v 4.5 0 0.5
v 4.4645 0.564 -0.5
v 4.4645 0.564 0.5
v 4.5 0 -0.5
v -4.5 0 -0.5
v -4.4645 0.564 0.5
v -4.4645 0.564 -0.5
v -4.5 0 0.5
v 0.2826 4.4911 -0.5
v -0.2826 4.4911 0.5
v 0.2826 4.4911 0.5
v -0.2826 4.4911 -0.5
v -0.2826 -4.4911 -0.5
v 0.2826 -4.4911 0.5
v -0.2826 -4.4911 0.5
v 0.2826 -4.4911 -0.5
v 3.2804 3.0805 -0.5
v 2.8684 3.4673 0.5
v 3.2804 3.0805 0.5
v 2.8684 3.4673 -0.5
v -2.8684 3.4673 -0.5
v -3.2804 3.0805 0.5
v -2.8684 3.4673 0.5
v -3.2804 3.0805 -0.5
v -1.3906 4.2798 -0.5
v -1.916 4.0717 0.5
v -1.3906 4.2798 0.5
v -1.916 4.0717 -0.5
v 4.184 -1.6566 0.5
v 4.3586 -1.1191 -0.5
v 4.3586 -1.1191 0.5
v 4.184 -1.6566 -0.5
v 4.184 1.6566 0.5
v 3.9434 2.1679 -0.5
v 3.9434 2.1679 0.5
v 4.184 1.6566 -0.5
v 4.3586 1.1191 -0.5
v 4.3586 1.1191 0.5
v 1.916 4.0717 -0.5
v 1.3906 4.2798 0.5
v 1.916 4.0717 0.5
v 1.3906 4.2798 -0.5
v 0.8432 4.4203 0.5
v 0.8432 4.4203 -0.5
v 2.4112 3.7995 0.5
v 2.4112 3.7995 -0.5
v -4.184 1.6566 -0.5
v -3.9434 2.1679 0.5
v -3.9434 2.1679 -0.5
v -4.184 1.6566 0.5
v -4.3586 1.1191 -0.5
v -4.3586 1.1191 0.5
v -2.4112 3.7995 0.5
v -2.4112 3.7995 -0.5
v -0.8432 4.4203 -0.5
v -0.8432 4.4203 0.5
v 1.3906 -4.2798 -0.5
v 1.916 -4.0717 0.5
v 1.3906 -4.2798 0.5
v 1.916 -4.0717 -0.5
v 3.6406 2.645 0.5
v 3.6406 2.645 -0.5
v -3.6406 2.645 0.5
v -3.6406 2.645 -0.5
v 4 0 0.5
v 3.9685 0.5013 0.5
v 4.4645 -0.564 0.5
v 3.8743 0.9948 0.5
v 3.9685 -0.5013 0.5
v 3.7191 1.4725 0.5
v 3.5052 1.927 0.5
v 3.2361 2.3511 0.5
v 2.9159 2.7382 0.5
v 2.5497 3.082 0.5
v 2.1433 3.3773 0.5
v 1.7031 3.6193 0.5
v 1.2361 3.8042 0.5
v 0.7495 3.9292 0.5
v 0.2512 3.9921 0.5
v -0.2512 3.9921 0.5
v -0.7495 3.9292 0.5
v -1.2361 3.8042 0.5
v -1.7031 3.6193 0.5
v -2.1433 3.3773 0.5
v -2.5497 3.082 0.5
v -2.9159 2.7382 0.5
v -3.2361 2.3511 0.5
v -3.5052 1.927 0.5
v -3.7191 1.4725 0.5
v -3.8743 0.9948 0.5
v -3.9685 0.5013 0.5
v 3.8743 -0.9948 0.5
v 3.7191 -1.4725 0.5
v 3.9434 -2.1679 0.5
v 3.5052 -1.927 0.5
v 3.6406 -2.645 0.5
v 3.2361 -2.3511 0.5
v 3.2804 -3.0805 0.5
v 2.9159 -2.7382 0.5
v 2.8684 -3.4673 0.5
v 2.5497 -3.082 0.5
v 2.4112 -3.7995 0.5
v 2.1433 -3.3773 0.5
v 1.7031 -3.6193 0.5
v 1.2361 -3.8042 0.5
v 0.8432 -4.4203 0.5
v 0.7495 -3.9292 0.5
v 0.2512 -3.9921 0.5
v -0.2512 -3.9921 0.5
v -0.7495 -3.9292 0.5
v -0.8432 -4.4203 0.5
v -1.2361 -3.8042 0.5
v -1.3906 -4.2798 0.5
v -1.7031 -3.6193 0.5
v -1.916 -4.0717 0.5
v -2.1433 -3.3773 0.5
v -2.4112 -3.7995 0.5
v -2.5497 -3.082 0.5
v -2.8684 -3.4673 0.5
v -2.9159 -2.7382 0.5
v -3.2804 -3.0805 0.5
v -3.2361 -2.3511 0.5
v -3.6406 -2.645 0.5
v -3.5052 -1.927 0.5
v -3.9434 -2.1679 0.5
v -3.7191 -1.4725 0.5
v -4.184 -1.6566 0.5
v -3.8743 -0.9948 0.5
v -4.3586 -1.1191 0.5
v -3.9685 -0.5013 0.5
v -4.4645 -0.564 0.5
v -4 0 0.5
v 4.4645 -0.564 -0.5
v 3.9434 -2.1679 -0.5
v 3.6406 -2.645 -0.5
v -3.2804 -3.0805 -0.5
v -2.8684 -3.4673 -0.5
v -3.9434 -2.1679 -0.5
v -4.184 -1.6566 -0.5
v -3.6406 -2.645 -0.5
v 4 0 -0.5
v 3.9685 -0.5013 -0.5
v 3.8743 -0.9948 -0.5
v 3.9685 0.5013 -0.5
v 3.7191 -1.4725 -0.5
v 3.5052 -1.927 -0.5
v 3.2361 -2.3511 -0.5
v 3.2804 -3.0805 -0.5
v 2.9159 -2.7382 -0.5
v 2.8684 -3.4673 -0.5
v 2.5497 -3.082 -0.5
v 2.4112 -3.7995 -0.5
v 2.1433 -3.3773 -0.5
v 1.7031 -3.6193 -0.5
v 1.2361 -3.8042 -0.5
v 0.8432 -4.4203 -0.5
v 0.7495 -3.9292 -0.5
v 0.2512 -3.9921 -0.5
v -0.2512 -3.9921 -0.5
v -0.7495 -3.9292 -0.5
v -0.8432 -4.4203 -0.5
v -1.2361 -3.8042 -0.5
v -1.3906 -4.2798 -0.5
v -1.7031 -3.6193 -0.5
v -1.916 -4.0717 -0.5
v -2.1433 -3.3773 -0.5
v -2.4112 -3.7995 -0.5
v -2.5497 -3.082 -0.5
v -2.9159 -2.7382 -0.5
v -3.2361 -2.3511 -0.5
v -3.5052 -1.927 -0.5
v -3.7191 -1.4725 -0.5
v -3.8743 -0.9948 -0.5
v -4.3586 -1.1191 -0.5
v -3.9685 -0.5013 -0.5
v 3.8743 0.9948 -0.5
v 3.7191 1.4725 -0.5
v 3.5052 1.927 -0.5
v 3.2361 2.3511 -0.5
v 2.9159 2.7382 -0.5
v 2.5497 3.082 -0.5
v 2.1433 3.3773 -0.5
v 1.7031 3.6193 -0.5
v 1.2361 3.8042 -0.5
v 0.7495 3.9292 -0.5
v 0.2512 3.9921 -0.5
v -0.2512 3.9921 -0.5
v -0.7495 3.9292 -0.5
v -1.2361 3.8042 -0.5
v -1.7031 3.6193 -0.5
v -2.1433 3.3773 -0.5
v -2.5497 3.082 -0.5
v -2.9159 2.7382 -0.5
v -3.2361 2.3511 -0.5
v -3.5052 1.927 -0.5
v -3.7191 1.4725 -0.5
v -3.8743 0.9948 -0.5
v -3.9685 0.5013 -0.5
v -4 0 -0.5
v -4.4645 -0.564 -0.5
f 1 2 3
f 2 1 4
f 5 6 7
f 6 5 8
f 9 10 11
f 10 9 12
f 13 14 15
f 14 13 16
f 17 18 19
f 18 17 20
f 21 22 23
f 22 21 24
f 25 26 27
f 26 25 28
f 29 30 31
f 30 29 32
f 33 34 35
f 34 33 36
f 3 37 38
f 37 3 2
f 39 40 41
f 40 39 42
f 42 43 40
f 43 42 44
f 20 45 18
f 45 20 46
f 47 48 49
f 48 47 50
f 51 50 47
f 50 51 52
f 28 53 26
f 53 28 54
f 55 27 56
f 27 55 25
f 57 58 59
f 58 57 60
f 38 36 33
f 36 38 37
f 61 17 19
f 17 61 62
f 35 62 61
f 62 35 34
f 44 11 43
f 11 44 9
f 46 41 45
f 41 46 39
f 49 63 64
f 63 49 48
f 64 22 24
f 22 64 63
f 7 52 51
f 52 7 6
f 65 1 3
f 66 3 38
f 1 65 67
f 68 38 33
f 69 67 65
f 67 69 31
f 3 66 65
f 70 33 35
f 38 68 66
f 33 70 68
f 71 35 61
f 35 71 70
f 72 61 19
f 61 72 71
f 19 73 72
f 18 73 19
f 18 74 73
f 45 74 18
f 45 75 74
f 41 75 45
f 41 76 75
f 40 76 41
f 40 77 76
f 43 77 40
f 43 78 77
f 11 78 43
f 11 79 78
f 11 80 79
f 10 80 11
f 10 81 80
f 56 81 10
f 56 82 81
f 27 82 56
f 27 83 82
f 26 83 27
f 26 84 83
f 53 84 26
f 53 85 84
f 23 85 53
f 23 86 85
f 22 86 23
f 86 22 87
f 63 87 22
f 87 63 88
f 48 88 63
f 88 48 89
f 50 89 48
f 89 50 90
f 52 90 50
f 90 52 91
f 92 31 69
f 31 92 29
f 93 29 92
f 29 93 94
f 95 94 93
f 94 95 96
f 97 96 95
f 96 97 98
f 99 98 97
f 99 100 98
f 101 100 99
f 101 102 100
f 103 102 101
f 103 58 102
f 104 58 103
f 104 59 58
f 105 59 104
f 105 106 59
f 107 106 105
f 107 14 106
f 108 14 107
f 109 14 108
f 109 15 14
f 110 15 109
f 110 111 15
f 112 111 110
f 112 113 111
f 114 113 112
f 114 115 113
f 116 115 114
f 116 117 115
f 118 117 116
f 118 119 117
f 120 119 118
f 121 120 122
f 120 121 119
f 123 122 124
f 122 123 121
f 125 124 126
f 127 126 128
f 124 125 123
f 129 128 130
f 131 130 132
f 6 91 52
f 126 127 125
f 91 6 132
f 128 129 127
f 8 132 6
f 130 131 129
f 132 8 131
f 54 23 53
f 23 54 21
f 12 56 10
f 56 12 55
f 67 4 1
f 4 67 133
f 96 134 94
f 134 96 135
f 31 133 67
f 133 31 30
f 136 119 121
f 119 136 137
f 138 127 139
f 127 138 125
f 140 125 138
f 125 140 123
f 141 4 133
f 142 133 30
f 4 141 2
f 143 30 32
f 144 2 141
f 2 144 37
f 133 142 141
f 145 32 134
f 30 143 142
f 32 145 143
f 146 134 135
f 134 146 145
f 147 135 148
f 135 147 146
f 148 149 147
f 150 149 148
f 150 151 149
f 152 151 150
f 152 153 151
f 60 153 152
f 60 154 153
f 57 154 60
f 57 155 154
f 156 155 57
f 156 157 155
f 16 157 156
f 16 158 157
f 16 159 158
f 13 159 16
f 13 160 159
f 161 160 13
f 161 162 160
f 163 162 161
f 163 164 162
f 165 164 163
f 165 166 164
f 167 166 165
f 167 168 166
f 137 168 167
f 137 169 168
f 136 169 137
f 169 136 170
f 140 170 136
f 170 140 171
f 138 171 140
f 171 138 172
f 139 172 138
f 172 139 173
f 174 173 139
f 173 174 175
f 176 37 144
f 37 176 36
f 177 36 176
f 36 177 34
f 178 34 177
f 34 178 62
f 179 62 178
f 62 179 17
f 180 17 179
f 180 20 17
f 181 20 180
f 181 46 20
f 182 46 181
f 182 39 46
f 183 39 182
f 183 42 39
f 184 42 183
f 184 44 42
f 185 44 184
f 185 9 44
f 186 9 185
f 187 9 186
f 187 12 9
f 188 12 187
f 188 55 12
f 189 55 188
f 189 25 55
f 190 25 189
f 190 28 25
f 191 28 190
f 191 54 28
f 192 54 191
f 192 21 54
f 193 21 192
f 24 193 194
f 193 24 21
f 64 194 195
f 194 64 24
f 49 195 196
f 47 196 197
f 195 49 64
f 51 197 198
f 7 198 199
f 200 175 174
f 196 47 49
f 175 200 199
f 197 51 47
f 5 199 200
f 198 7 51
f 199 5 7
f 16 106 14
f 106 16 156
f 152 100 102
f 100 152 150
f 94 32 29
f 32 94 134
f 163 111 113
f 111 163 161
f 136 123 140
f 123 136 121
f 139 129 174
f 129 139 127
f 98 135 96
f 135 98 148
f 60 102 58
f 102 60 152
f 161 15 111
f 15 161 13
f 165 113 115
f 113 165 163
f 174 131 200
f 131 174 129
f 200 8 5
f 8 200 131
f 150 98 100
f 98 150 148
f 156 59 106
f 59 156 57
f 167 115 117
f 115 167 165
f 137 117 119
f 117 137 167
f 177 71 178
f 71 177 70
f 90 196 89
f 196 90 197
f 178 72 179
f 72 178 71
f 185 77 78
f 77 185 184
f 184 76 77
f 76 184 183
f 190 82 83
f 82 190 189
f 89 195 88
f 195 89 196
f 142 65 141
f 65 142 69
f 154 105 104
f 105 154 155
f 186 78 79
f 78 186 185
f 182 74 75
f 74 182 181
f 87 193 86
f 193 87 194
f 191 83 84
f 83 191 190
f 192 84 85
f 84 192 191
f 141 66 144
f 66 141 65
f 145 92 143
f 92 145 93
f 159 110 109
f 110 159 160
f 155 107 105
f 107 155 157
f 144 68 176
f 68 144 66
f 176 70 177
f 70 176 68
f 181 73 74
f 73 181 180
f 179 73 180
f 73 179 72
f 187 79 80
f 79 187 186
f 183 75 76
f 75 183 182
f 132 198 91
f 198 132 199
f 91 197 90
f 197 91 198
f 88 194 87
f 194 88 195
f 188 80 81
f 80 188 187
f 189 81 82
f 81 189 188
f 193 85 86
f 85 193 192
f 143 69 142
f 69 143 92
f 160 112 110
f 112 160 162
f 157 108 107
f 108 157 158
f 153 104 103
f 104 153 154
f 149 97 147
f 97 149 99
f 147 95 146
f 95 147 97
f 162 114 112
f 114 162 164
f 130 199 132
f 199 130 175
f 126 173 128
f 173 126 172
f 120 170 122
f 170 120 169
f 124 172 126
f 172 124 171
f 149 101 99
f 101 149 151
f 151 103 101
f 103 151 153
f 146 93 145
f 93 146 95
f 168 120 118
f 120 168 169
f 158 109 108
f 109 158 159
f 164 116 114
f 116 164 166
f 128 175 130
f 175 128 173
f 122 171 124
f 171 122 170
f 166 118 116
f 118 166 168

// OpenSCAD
$fn = 50;


difference() {
	union() {
		translate(v = [0, 0, -0.5000000000]) {
			cylinder(h = 1, r = 4.5000000000);
		}
	}
	union() {
		translate(v = [0, 0, -100.0000000000]) {
			cylinder(h = 200, r = 4);
		}
	}
}
